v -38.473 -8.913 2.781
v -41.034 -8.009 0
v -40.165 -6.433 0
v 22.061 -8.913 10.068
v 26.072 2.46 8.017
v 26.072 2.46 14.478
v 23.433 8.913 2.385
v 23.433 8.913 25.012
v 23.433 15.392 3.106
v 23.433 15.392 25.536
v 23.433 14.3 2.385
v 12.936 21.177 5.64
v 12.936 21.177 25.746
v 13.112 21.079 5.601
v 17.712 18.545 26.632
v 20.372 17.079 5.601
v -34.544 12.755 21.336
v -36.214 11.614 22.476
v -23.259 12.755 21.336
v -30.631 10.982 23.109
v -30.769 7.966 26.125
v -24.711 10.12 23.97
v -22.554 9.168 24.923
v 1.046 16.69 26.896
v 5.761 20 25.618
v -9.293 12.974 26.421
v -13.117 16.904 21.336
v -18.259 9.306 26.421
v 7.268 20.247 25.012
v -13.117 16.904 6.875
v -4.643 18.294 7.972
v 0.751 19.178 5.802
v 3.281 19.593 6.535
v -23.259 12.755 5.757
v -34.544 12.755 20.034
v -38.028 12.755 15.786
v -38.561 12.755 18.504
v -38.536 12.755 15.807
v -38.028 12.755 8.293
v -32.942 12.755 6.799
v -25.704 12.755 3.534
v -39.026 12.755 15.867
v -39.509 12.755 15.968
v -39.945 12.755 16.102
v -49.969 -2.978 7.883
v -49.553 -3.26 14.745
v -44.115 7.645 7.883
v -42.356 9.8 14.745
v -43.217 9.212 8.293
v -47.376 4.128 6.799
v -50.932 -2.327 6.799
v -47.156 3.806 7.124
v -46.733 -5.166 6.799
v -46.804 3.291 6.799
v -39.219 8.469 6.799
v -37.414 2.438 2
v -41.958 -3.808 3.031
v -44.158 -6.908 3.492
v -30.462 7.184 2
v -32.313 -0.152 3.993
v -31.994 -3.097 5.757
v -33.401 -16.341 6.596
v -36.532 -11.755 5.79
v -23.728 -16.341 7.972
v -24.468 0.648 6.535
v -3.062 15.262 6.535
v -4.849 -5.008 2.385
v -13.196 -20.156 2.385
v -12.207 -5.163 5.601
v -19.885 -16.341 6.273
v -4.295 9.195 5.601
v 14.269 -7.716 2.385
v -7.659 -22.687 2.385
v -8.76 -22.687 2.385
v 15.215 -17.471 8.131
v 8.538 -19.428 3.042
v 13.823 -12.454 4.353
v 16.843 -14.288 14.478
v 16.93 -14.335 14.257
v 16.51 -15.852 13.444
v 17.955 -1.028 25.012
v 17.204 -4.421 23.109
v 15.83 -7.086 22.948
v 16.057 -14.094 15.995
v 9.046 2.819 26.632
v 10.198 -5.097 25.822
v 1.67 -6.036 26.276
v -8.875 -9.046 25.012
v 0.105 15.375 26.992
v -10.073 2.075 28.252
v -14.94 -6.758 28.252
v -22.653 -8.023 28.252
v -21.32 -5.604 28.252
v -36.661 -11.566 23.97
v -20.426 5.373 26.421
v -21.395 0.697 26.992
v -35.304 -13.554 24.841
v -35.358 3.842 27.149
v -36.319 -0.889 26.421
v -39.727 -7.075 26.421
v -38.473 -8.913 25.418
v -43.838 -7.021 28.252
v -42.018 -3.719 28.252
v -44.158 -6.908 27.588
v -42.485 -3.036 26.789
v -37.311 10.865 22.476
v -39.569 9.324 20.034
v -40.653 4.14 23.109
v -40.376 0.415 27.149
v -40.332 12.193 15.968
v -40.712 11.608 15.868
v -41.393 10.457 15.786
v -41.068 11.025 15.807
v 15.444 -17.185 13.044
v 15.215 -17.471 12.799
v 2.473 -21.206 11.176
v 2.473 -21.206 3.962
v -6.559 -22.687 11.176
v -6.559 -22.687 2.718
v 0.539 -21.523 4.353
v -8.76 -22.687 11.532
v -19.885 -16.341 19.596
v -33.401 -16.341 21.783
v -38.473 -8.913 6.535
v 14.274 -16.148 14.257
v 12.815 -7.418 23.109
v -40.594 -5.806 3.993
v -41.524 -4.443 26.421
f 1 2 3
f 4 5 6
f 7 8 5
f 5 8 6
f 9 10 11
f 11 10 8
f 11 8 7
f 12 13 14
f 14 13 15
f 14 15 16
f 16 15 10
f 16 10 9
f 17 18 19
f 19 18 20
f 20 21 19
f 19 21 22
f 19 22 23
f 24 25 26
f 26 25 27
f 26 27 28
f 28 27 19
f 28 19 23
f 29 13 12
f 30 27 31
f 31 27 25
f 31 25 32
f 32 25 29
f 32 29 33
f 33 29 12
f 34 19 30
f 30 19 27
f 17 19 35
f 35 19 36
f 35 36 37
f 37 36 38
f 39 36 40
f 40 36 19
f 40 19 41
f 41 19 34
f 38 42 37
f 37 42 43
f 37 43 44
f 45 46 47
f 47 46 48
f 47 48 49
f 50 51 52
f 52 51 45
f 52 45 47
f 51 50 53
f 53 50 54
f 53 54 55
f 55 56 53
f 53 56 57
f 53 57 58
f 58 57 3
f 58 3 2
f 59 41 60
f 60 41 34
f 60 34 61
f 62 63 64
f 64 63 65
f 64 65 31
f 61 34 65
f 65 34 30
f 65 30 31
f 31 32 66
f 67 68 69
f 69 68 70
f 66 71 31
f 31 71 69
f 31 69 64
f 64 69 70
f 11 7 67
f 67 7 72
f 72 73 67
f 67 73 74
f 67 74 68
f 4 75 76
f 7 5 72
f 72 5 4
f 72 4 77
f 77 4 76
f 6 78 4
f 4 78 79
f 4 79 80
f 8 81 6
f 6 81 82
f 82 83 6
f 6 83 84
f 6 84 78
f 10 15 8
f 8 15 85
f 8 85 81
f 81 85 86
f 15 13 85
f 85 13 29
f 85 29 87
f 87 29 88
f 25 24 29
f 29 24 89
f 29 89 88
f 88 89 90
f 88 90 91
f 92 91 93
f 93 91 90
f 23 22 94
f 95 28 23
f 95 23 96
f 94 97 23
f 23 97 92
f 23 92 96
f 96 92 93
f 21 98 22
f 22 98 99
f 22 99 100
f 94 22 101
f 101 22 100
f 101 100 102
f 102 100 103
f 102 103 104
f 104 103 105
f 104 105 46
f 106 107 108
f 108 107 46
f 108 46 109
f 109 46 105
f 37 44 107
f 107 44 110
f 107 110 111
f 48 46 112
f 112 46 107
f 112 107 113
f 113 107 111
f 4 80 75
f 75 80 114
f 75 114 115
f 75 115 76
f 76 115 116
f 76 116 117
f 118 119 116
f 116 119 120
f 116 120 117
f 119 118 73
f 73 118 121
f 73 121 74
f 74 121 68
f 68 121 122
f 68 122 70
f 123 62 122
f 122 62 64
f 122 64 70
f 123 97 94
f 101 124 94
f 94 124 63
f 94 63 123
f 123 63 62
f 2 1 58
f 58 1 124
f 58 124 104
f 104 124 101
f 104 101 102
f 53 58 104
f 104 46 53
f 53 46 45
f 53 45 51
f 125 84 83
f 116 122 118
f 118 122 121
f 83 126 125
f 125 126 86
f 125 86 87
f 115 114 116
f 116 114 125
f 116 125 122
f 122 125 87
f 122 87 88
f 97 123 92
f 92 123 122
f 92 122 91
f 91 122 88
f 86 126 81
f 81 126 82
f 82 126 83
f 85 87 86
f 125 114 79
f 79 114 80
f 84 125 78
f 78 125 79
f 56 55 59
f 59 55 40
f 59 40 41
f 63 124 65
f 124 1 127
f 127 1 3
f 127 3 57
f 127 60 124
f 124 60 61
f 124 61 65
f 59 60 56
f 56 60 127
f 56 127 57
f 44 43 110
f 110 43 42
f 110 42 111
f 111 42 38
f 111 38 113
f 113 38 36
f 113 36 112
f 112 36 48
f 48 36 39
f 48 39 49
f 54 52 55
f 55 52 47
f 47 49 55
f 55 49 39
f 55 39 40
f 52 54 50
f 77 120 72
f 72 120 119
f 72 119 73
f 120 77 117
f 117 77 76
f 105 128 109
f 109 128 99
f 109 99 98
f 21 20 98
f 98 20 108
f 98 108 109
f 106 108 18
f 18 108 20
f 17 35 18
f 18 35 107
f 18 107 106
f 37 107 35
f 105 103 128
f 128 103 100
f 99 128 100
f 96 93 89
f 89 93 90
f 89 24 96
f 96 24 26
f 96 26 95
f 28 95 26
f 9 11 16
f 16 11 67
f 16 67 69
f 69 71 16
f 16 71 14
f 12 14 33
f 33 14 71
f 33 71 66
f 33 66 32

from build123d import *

# Parameters (mm, degrees)
BOSS_EXTRUDE1_DEPTH = 28.956
SKETCH2_OUTSIDE_W   = 104.225
SKETCH2_OUTSIDE_H   = 74.976
CUT_EXTRUDE1_DEPTH  = 28.956
CHAMFER1_SIZE       = 17.78
CHAMFER2_SIZE       = 7.62
CHAMFER3_SIZE       = 7.62
SKETCH3_OUTSIDE_W   = 109.871
SKETCH3_OUTSIDE_H   = 49.7
CUT_EXTRUDE2_DEPTH  = 60.198
SKETCH4_OUTSIDE_W   = 48.856
SKETCH4_OUTSIDE_H   = 100.249
CUT_EXTRUDE3_DEPTH  = 65.532


with BuildPart() as part:
    # Sketch1 → Boss-Extrude1 (new body)
    with BuildSketch(Plane.XY):
        with BuildLine():
            add(Edge.make_bspline(
                [(0, 26.329340351), (-15.786544799, 14.596384946), (-36.267616128, 18.74958365)],
                knots=[0, 0, 0, 1, 1, 1], degree=2))
            add(Edge.make_bspline(
                [(-36.267616128, 18.74958365), (-125.980614733, -26.329340351), (0, -26.329340351)],
                knots=[2.349082937, 2.349082937, 2.349082937, 4.702848639, 4.702848639, 4.702848639], degree=2, weights=[1, 0.374957632, 0.976740293]))
            add(Edge.make_bspline(
                [(0, -26.329340351), (0.906326781, -26.329340351), (1.812095783, -26.313136555)],
                knots=[4.702848639, 4.702848639, 4.702848639, 4.747474319, 4.747474319, 4.747474319], degree=2, weights=[0.976740293, 0.988149653, 1]))
            add(Edge.make_bspline(
                [(0, 26.329340351), (15.016751237, 25.038982394), (44.548809621, 18.28020699), (17.807382706, -25.169253325), (1.812095783, -26.313136555)],
                knots=[0, 0, 0, 0, 0.367872962, 0.976947038, 0.976947038, 0.976947038, 0.976947038], degree=3))
        make_face()
    extrude(amount=BOSS_EXTRUDE1_DEPTH)

    # Sketch2 outside → Cut-Extrude1 (cut)
    with BuildSketch(Plane.XY.offset(28.956)):
        with Locations((-10.7055, 0)):
            Rectangle(SKETCH2_OUTSIDE_W, SKETCH2_OUTSIDE_H)
        Polygon((-45.695007292, 8.912831724), (-42.621617043, 12.754569536), (-31.250073118, 12.754569536), (-23.259258469, 12.754569536), (-13.117070645, 16.903646374), (0, 19.055019548), (12.936005686, 21.176695674), (20.690222102, 16.903646374), (23.432684842, 15.392381036), (23.432684842, 8.912831724), (26.072382633, 2.460237124), (22.061453472, -8.912831724), (15.214644669, -17.471342729), (2.473177364, -21.20584876), (-6.558535322, -22.687169165), (-8.760365364, -22.687169165), (-19.88532873, -16.340644797), (-33.401446293, -16.340644797), (-38.472540205, -8.912831724), (-44.158312167, -6.907636041), (-51.519978603, -1.929165251), align=None, mode=Mode.SUBTRACT)
    extrude(amount=-CUT_EXTRUDE1_DEPTH, mode=Mode.SUBTRACT)

    # Chamfer1
    chamfer1_edges = [part.edges().sort_by_distance(p)[0] for p in [
        (-2.042678979, -21.946508963, 28.956),
    ]]
    chamfer(chamfer1_edges, length=CHAMFER1_SIZE)

    # Chamfer2
    chamfer2_edges = [part.edges().sort_by_distance(p)[0] for p in [
        (-18.188164557, 14.829107955, 28.956),
    ]]
    chamfer(chamfer2_edges, length=CHAMFER2_SIZE)

    # Chamfer3
    chamfer3_edges = [part.edges().sort_by_distance(p)[0] for p in [
        (-13.196740008, 12.754569536, 28.956),
    ]]
    chamfer(chamfer3_edges, length=CHAMFER3_SIZE)

    # Sketch3 outside → Cut-Extrude2 (cut)
    with BuildSketch(Plane(origin=(11.964634426, 21.711980874, 0), x_dir=(0.875823084, -0.482632289, 0), z_dir=(0.482632289, 0.875823084, 0))):
        with Locations((-10.7795, -14.478)):
            Rectangle(SKETCH3_OUTSIDE_W, SKETCH3_OUTSIDE_H)
        Polygon((-41.826185128, -14.74462757), (-38.497860604, -21.336), (-35.00576286, -28.251706873), (-26.526762563, -23.970221502), (-15.967663822, -28.251706873), (-9.823064699, -28.251706873), (-3.406709878, -25.011757782), (6.56253296, -26.631732327), (16.221265926, -25.011757782), (21.647404684, -14.478), (23.623550585, -10.068279635), (16.221265926, -2.384533072), (-1.82963065, -2.384533072), (-12.895364261, -7.972193753), (-26.526762563, -5.757129016), (-32.073003248, 0), (-38.436362681, -6.798953713), (-43.484763158, -6.798953713), (-42.326681299, -7.882839769), align=None, mode=Mode.SUBTRACT)
    extrude(amount=-CUT_EXTRUDE2_DEPTH, mode=Mode.SUBTRACT)

    # Sketch4 outside → Cut-Extrude3 (cut)
    with BuildSketch(Plane(origin=(-30.391792793, -20.748992187, 0), x_dir=(0, 0, 1), z_dir=(-0.825881698, -0.563843437, 0))):
        with Locations((14.126, 6.3845)):
            Rectangle(SKETCH4_OUTSIDE_W, SKETCH4_OUTSIDE_H)
        with BuildLine():
            Line((17.379043474, 33.940305121), (20.033797097, 30.011269758))
            Line((20.033797097, 30.011269758), (22.47617043, 30.011269758))
            Line((22.47617043, 30.011269758), (23.108500778, 26.340870516))
            Line((23.108500778, 26.340870516), (27.148536807, 23.108910338))
            Line((27.148536807, 23.108910338), (26.420684971, 19.743661409))
            Line((26.420684971, 19.743661409), (26.420684971, 15.955142831))
            Line((26.420684971, 15.955142831), (26.992031947, 12.638725208))
            Line((26.992031947, 12.638725208), (28.251706873, 7.392768888))
            Line((28.251706873, 7.392768888), (29.39802431, 2.618893435))
            Line((29.39802431, 2.618893435), (28.824865591, -0.031126348))
            Line((28.824865591, -0.031126348), (26.631732327, -2.772601154))
            Line((26.631732327, -2.772601154), (25.821745055, -9.959999212))
            Line((25.821745055, -9.959999212), (23.108500778, -13.351626593))
            Line((23.108500778, -13.351626593), (22.5757173, -18.07926499))
            Line((22.5757173, -18.07926499), (14.257053213, -21.384760387))
            Line((14.257053213, -21.384760387), (11.527022899, -24.797370761))
            Line((11.527022899, -24.797370761), (2.142356235, -22.767611))
            Line((2.142356235, -22.767611), (4.352503323, -18.07926499))
            Line((4.352503323, -18.07926499), (2.384533072, -14.418186985))
            Line((2.384533072, -14.418186985), (2.384533072, -11.501772175))
            Line((2.384533072, -11.501772175), (2.384533072, -1.401863751))
            Line((2.384533072, -1.401863751), (5.601070504, 2.618893435))
            Line((5.601070504, 2.618893435), (5.601070504, 10.015747048))
            Line((5.601070504, 10.015747048), (6.534511478, 14.331544691))
            Line((6.534511478, 14.331544691), (3.992801788, 18.093275032))
            Line((3.992801788, 18.093275032), (1.999794348, 23.108910338))
            Line((1.999794348, 23.108910338), (5.263656633, 27.188824848))
            Line((5.263656633, 27.188824848), (6.798953713, 29.107986959))
            Line((6.798953713, 29.107986959), (8.293414674, 31.975787439))
            Line((8.293414674, 31.975787439), (15.7861913, 31.975787439))
            ThreePointArc((15.7861913, 31.975787439), (16.234438667, 33.24035335), (17.379043474, 33.940305121))
        make_face(mode=Mode.SUBTRACT)
    extrude(amount=-CUT_EXTRUDE3_DEPTH, mode=Mode.SUBTRACT)


solid = part.part
